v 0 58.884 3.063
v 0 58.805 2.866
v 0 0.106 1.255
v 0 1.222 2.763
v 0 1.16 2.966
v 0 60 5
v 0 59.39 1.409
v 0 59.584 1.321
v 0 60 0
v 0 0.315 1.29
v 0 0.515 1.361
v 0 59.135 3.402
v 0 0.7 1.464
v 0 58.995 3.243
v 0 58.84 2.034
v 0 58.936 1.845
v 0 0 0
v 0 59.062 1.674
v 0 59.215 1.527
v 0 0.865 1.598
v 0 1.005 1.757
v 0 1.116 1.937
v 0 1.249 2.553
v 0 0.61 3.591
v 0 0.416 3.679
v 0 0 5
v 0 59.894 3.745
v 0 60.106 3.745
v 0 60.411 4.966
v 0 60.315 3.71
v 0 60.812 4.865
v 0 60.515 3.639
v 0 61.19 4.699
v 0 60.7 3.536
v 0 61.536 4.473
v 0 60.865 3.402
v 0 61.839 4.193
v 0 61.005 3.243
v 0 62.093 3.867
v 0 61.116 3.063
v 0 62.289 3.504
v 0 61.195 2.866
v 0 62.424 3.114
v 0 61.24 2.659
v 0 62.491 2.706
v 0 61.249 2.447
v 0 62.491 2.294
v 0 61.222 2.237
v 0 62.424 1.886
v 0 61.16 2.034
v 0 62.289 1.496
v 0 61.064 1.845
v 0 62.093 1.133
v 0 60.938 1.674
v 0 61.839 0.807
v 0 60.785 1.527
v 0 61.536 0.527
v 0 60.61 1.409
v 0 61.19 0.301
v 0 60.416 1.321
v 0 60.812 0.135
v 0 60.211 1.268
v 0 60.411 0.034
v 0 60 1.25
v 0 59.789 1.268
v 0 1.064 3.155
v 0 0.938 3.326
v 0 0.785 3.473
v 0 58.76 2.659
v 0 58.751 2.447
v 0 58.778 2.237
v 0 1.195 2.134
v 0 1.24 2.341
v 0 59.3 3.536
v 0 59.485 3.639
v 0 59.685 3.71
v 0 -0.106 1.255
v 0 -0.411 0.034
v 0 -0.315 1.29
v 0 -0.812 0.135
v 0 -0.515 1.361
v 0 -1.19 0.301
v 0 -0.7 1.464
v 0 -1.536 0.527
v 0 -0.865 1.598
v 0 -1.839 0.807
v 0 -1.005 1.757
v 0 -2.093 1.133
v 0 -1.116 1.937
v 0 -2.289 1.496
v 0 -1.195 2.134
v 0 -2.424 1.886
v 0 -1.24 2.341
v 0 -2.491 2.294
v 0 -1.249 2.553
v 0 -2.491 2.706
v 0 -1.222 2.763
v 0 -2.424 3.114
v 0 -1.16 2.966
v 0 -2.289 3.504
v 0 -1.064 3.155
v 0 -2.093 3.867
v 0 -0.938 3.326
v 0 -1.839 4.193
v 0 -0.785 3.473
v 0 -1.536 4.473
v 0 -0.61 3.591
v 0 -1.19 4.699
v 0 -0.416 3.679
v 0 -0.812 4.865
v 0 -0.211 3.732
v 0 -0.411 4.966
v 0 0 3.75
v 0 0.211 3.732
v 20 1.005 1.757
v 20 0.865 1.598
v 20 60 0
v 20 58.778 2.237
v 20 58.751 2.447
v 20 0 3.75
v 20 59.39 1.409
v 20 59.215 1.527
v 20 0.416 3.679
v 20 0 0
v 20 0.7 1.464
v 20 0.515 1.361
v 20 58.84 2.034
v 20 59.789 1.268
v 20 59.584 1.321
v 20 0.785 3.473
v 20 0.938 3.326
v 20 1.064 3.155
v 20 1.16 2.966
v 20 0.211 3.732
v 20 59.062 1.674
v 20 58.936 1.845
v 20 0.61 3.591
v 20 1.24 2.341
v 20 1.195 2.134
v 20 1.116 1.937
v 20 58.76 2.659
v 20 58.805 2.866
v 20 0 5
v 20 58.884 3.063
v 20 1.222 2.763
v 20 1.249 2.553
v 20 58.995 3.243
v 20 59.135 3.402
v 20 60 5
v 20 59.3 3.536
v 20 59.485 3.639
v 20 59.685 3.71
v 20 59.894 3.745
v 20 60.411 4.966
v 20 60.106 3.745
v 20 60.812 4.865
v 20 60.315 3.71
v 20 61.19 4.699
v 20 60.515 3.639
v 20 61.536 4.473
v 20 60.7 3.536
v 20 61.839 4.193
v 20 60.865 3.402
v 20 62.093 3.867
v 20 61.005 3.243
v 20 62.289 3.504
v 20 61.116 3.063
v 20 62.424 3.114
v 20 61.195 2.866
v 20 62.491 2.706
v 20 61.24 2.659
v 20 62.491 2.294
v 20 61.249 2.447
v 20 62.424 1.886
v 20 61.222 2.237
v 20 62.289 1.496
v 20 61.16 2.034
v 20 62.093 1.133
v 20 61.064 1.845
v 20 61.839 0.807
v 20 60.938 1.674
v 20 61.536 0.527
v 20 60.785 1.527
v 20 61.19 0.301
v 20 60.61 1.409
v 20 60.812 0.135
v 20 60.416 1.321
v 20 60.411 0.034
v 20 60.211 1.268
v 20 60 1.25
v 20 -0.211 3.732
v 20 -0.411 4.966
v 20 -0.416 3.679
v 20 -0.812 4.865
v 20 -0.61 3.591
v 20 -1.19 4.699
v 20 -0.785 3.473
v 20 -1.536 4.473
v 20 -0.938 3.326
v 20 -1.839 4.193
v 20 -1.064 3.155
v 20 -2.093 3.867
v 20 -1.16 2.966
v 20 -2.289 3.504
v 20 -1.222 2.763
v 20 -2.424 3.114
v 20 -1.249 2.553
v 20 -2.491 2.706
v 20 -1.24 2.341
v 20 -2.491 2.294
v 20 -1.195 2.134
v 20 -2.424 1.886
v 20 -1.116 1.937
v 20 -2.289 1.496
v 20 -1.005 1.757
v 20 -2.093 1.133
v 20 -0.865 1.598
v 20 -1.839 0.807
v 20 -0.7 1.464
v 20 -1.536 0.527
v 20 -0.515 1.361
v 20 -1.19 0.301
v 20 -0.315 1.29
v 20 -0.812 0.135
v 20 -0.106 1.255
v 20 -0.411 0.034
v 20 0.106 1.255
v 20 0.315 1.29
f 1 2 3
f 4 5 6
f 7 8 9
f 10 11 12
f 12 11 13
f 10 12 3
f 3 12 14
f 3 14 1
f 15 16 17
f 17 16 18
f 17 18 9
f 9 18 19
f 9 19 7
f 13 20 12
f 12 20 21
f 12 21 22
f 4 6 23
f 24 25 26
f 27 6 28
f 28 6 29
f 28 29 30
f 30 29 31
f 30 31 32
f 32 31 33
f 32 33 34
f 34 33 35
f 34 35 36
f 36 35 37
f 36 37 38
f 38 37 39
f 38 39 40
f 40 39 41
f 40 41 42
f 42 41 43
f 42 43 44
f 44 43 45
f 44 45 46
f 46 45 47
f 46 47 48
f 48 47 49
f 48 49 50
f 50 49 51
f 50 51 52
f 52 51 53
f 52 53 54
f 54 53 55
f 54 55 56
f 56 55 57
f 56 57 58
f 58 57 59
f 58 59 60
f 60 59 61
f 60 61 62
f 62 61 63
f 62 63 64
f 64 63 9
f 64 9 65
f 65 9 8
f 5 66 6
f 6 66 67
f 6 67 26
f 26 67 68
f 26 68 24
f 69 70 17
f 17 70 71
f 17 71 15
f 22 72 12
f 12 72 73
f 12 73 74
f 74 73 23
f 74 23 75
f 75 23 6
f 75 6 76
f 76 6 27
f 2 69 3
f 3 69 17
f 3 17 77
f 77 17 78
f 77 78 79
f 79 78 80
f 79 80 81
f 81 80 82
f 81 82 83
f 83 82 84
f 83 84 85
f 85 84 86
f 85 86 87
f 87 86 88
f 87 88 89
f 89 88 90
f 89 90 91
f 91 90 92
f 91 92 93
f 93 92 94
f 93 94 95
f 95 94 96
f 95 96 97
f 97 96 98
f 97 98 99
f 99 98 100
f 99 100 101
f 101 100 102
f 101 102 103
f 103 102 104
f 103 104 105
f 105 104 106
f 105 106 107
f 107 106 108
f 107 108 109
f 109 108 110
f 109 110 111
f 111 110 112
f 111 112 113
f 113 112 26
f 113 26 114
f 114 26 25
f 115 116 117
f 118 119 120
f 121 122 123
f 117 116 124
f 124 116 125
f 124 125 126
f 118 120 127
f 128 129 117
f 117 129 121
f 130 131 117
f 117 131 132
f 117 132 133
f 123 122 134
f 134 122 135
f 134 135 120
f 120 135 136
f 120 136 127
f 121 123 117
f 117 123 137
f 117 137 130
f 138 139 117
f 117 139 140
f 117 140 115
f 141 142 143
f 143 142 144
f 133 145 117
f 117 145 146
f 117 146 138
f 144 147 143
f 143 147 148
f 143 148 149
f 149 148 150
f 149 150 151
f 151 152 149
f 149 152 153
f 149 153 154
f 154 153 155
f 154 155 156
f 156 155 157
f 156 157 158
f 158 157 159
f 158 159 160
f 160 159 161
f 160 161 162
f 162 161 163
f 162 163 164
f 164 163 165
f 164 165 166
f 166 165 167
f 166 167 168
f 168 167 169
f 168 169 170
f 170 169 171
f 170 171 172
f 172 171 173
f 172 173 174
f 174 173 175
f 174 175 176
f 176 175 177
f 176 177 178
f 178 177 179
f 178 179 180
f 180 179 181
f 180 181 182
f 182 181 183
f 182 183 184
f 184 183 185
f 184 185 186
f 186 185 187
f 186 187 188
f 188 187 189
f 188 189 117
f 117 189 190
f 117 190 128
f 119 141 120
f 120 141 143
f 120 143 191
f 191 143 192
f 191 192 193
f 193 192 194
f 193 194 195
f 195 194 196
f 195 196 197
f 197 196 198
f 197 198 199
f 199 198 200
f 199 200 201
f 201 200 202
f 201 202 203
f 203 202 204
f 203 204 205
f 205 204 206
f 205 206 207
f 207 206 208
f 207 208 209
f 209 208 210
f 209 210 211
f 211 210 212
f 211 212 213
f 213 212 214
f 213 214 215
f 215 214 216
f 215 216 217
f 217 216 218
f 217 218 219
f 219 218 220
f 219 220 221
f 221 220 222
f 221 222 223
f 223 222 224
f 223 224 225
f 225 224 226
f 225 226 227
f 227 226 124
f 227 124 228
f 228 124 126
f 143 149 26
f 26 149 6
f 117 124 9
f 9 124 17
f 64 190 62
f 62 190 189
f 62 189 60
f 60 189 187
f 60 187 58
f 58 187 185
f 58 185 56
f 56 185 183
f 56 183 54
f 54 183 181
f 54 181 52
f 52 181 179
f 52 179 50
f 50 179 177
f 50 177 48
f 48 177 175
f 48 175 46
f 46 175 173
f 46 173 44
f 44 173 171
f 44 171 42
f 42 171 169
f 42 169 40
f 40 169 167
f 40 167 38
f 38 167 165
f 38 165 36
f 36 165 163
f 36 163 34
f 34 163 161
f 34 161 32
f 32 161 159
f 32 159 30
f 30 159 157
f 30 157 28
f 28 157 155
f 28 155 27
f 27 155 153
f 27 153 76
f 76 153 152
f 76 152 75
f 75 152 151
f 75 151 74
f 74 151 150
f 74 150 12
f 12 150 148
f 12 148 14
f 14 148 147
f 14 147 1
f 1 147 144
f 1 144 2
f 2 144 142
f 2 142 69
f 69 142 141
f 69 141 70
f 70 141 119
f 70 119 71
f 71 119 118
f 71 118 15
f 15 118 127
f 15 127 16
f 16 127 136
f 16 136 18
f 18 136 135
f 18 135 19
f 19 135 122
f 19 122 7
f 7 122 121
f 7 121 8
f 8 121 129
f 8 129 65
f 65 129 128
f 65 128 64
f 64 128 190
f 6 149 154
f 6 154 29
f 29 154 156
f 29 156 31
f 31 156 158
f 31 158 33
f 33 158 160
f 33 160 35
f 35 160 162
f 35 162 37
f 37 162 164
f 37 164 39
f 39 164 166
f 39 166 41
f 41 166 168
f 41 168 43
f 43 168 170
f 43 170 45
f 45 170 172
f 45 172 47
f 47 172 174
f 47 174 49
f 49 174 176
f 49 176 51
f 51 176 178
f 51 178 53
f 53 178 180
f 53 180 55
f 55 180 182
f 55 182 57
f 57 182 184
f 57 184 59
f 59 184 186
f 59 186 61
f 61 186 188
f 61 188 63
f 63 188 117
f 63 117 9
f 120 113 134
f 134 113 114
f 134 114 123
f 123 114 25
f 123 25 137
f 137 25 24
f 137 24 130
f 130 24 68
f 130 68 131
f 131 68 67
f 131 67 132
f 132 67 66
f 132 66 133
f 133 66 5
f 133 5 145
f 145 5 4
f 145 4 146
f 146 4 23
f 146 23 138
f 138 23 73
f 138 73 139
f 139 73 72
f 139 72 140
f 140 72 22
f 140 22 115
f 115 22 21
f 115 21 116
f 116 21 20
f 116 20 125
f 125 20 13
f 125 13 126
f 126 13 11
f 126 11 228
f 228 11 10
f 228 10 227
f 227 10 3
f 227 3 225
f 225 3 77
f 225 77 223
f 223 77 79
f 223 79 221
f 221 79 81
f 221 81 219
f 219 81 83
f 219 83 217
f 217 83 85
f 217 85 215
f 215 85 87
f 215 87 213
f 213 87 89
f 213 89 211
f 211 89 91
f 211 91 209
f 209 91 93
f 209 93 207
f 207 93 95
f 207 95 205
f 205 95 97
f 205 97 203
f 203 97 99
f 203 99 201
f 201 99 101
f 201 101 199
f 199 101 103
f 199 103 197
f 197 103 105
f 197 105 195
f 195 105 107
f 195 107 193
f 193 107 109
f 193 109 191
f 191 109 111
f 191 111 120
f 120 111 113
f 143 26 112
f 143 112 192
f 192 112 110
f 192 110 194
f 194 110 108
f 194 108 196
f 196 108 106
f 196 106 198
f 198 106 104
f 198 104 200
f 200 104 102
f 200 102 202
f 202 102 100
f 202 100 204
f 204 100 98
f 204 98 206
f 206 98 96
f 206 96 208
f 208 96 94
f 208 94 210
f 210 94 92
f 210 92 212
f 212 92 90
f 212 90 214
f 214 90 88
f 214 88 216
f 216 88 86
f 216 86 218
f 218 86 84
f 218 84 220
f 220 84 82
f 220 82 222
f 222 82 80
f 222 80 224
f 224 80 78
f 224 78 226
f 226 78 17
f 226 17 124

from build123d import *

# Parameters (mm, degrees)
SKETCH1_W           = 20
SKETCH1_H           = 60
BOSS_EXTRUDE1_DEPTH = 5
SKETCH2_R           = 2.5
SKETCH2_R_2         = 1.25
BOSS_EXTRUDE2_DEPTH = 20
SKETCH3_R           = 1.25
CUT_EXTRUDE1_DEPTH  = 29
SKETCH4_R           = 2.5
SKETCH4_R_2         = 1.25
BOSS_EXTRUDE3_DEPTH = 20
SKETCH5_R           = 1.25
CUT_EXTRUDE2_DEPTH  = 29


with BuildPart() as part:
    # Sketch1 → Boss-Extrude1 (new body)
    with BuildSketch(Plane.XY):
        with Locations((10, 30)):
            Rectangle(SKETCH1_W, SKETCH1_H)
    extrude(amount=BOSS_EXTRUDE1_DEPTH)

    # Sketch2 → Boss-Extrude2 (add)
    with BuildSketch(Plane(origin=(20, 0, 0), x_dir=(0, 0, -1), z_dir=(1, 0, 0))):
        with Locations((-2.5, 60)):
            Circle(SKETCH2_R)
        with Locations((-2.5, 60)):
            Circle(SKETCH2_R_2, mode=Mode.SUBTRACT)
    extrude(amount=-BOSS_EXTRUDE2_DEPTH)

    # Sketch3 → Cut-Extrude1 (cut)
    with BuildSketch(Plane.ZY):
        with Locations((2.5, 60)):
            Circle(SKETCH3_R)
    extrude(amount=-CUT_EXTRUDE1_DEPTH, mode=Mode.SUBTRACT)

    # Sketch4 → Boss-Extrude3 (add)
    with BuildSketch(Plane.ZY):
        with Locations((2.5, 0)):
            Circle(SKETCH4_R)
        with Locations((2.5, 0)):
            Circle(SKETCH4_R_2, mode=Mode.SUBTRACT)
    extrude(amount=-BOSS_EXTRUDE3_DEPTH)

    # Sketch5 → Cut-Extrude2 (cut)
    with BuildSketch(Plane(origin=(20, 0, 0), x_dir=(0, 0, -1), z_dir=(1, 0, 0))):
        with Locations((-2.5, 0)):
            Circle(SKETCH5_R)
    extrude(amount=-CUT_EXTRUDE2_DEPTH, mode=Mode.SUBTRACT)


solid = part.part
